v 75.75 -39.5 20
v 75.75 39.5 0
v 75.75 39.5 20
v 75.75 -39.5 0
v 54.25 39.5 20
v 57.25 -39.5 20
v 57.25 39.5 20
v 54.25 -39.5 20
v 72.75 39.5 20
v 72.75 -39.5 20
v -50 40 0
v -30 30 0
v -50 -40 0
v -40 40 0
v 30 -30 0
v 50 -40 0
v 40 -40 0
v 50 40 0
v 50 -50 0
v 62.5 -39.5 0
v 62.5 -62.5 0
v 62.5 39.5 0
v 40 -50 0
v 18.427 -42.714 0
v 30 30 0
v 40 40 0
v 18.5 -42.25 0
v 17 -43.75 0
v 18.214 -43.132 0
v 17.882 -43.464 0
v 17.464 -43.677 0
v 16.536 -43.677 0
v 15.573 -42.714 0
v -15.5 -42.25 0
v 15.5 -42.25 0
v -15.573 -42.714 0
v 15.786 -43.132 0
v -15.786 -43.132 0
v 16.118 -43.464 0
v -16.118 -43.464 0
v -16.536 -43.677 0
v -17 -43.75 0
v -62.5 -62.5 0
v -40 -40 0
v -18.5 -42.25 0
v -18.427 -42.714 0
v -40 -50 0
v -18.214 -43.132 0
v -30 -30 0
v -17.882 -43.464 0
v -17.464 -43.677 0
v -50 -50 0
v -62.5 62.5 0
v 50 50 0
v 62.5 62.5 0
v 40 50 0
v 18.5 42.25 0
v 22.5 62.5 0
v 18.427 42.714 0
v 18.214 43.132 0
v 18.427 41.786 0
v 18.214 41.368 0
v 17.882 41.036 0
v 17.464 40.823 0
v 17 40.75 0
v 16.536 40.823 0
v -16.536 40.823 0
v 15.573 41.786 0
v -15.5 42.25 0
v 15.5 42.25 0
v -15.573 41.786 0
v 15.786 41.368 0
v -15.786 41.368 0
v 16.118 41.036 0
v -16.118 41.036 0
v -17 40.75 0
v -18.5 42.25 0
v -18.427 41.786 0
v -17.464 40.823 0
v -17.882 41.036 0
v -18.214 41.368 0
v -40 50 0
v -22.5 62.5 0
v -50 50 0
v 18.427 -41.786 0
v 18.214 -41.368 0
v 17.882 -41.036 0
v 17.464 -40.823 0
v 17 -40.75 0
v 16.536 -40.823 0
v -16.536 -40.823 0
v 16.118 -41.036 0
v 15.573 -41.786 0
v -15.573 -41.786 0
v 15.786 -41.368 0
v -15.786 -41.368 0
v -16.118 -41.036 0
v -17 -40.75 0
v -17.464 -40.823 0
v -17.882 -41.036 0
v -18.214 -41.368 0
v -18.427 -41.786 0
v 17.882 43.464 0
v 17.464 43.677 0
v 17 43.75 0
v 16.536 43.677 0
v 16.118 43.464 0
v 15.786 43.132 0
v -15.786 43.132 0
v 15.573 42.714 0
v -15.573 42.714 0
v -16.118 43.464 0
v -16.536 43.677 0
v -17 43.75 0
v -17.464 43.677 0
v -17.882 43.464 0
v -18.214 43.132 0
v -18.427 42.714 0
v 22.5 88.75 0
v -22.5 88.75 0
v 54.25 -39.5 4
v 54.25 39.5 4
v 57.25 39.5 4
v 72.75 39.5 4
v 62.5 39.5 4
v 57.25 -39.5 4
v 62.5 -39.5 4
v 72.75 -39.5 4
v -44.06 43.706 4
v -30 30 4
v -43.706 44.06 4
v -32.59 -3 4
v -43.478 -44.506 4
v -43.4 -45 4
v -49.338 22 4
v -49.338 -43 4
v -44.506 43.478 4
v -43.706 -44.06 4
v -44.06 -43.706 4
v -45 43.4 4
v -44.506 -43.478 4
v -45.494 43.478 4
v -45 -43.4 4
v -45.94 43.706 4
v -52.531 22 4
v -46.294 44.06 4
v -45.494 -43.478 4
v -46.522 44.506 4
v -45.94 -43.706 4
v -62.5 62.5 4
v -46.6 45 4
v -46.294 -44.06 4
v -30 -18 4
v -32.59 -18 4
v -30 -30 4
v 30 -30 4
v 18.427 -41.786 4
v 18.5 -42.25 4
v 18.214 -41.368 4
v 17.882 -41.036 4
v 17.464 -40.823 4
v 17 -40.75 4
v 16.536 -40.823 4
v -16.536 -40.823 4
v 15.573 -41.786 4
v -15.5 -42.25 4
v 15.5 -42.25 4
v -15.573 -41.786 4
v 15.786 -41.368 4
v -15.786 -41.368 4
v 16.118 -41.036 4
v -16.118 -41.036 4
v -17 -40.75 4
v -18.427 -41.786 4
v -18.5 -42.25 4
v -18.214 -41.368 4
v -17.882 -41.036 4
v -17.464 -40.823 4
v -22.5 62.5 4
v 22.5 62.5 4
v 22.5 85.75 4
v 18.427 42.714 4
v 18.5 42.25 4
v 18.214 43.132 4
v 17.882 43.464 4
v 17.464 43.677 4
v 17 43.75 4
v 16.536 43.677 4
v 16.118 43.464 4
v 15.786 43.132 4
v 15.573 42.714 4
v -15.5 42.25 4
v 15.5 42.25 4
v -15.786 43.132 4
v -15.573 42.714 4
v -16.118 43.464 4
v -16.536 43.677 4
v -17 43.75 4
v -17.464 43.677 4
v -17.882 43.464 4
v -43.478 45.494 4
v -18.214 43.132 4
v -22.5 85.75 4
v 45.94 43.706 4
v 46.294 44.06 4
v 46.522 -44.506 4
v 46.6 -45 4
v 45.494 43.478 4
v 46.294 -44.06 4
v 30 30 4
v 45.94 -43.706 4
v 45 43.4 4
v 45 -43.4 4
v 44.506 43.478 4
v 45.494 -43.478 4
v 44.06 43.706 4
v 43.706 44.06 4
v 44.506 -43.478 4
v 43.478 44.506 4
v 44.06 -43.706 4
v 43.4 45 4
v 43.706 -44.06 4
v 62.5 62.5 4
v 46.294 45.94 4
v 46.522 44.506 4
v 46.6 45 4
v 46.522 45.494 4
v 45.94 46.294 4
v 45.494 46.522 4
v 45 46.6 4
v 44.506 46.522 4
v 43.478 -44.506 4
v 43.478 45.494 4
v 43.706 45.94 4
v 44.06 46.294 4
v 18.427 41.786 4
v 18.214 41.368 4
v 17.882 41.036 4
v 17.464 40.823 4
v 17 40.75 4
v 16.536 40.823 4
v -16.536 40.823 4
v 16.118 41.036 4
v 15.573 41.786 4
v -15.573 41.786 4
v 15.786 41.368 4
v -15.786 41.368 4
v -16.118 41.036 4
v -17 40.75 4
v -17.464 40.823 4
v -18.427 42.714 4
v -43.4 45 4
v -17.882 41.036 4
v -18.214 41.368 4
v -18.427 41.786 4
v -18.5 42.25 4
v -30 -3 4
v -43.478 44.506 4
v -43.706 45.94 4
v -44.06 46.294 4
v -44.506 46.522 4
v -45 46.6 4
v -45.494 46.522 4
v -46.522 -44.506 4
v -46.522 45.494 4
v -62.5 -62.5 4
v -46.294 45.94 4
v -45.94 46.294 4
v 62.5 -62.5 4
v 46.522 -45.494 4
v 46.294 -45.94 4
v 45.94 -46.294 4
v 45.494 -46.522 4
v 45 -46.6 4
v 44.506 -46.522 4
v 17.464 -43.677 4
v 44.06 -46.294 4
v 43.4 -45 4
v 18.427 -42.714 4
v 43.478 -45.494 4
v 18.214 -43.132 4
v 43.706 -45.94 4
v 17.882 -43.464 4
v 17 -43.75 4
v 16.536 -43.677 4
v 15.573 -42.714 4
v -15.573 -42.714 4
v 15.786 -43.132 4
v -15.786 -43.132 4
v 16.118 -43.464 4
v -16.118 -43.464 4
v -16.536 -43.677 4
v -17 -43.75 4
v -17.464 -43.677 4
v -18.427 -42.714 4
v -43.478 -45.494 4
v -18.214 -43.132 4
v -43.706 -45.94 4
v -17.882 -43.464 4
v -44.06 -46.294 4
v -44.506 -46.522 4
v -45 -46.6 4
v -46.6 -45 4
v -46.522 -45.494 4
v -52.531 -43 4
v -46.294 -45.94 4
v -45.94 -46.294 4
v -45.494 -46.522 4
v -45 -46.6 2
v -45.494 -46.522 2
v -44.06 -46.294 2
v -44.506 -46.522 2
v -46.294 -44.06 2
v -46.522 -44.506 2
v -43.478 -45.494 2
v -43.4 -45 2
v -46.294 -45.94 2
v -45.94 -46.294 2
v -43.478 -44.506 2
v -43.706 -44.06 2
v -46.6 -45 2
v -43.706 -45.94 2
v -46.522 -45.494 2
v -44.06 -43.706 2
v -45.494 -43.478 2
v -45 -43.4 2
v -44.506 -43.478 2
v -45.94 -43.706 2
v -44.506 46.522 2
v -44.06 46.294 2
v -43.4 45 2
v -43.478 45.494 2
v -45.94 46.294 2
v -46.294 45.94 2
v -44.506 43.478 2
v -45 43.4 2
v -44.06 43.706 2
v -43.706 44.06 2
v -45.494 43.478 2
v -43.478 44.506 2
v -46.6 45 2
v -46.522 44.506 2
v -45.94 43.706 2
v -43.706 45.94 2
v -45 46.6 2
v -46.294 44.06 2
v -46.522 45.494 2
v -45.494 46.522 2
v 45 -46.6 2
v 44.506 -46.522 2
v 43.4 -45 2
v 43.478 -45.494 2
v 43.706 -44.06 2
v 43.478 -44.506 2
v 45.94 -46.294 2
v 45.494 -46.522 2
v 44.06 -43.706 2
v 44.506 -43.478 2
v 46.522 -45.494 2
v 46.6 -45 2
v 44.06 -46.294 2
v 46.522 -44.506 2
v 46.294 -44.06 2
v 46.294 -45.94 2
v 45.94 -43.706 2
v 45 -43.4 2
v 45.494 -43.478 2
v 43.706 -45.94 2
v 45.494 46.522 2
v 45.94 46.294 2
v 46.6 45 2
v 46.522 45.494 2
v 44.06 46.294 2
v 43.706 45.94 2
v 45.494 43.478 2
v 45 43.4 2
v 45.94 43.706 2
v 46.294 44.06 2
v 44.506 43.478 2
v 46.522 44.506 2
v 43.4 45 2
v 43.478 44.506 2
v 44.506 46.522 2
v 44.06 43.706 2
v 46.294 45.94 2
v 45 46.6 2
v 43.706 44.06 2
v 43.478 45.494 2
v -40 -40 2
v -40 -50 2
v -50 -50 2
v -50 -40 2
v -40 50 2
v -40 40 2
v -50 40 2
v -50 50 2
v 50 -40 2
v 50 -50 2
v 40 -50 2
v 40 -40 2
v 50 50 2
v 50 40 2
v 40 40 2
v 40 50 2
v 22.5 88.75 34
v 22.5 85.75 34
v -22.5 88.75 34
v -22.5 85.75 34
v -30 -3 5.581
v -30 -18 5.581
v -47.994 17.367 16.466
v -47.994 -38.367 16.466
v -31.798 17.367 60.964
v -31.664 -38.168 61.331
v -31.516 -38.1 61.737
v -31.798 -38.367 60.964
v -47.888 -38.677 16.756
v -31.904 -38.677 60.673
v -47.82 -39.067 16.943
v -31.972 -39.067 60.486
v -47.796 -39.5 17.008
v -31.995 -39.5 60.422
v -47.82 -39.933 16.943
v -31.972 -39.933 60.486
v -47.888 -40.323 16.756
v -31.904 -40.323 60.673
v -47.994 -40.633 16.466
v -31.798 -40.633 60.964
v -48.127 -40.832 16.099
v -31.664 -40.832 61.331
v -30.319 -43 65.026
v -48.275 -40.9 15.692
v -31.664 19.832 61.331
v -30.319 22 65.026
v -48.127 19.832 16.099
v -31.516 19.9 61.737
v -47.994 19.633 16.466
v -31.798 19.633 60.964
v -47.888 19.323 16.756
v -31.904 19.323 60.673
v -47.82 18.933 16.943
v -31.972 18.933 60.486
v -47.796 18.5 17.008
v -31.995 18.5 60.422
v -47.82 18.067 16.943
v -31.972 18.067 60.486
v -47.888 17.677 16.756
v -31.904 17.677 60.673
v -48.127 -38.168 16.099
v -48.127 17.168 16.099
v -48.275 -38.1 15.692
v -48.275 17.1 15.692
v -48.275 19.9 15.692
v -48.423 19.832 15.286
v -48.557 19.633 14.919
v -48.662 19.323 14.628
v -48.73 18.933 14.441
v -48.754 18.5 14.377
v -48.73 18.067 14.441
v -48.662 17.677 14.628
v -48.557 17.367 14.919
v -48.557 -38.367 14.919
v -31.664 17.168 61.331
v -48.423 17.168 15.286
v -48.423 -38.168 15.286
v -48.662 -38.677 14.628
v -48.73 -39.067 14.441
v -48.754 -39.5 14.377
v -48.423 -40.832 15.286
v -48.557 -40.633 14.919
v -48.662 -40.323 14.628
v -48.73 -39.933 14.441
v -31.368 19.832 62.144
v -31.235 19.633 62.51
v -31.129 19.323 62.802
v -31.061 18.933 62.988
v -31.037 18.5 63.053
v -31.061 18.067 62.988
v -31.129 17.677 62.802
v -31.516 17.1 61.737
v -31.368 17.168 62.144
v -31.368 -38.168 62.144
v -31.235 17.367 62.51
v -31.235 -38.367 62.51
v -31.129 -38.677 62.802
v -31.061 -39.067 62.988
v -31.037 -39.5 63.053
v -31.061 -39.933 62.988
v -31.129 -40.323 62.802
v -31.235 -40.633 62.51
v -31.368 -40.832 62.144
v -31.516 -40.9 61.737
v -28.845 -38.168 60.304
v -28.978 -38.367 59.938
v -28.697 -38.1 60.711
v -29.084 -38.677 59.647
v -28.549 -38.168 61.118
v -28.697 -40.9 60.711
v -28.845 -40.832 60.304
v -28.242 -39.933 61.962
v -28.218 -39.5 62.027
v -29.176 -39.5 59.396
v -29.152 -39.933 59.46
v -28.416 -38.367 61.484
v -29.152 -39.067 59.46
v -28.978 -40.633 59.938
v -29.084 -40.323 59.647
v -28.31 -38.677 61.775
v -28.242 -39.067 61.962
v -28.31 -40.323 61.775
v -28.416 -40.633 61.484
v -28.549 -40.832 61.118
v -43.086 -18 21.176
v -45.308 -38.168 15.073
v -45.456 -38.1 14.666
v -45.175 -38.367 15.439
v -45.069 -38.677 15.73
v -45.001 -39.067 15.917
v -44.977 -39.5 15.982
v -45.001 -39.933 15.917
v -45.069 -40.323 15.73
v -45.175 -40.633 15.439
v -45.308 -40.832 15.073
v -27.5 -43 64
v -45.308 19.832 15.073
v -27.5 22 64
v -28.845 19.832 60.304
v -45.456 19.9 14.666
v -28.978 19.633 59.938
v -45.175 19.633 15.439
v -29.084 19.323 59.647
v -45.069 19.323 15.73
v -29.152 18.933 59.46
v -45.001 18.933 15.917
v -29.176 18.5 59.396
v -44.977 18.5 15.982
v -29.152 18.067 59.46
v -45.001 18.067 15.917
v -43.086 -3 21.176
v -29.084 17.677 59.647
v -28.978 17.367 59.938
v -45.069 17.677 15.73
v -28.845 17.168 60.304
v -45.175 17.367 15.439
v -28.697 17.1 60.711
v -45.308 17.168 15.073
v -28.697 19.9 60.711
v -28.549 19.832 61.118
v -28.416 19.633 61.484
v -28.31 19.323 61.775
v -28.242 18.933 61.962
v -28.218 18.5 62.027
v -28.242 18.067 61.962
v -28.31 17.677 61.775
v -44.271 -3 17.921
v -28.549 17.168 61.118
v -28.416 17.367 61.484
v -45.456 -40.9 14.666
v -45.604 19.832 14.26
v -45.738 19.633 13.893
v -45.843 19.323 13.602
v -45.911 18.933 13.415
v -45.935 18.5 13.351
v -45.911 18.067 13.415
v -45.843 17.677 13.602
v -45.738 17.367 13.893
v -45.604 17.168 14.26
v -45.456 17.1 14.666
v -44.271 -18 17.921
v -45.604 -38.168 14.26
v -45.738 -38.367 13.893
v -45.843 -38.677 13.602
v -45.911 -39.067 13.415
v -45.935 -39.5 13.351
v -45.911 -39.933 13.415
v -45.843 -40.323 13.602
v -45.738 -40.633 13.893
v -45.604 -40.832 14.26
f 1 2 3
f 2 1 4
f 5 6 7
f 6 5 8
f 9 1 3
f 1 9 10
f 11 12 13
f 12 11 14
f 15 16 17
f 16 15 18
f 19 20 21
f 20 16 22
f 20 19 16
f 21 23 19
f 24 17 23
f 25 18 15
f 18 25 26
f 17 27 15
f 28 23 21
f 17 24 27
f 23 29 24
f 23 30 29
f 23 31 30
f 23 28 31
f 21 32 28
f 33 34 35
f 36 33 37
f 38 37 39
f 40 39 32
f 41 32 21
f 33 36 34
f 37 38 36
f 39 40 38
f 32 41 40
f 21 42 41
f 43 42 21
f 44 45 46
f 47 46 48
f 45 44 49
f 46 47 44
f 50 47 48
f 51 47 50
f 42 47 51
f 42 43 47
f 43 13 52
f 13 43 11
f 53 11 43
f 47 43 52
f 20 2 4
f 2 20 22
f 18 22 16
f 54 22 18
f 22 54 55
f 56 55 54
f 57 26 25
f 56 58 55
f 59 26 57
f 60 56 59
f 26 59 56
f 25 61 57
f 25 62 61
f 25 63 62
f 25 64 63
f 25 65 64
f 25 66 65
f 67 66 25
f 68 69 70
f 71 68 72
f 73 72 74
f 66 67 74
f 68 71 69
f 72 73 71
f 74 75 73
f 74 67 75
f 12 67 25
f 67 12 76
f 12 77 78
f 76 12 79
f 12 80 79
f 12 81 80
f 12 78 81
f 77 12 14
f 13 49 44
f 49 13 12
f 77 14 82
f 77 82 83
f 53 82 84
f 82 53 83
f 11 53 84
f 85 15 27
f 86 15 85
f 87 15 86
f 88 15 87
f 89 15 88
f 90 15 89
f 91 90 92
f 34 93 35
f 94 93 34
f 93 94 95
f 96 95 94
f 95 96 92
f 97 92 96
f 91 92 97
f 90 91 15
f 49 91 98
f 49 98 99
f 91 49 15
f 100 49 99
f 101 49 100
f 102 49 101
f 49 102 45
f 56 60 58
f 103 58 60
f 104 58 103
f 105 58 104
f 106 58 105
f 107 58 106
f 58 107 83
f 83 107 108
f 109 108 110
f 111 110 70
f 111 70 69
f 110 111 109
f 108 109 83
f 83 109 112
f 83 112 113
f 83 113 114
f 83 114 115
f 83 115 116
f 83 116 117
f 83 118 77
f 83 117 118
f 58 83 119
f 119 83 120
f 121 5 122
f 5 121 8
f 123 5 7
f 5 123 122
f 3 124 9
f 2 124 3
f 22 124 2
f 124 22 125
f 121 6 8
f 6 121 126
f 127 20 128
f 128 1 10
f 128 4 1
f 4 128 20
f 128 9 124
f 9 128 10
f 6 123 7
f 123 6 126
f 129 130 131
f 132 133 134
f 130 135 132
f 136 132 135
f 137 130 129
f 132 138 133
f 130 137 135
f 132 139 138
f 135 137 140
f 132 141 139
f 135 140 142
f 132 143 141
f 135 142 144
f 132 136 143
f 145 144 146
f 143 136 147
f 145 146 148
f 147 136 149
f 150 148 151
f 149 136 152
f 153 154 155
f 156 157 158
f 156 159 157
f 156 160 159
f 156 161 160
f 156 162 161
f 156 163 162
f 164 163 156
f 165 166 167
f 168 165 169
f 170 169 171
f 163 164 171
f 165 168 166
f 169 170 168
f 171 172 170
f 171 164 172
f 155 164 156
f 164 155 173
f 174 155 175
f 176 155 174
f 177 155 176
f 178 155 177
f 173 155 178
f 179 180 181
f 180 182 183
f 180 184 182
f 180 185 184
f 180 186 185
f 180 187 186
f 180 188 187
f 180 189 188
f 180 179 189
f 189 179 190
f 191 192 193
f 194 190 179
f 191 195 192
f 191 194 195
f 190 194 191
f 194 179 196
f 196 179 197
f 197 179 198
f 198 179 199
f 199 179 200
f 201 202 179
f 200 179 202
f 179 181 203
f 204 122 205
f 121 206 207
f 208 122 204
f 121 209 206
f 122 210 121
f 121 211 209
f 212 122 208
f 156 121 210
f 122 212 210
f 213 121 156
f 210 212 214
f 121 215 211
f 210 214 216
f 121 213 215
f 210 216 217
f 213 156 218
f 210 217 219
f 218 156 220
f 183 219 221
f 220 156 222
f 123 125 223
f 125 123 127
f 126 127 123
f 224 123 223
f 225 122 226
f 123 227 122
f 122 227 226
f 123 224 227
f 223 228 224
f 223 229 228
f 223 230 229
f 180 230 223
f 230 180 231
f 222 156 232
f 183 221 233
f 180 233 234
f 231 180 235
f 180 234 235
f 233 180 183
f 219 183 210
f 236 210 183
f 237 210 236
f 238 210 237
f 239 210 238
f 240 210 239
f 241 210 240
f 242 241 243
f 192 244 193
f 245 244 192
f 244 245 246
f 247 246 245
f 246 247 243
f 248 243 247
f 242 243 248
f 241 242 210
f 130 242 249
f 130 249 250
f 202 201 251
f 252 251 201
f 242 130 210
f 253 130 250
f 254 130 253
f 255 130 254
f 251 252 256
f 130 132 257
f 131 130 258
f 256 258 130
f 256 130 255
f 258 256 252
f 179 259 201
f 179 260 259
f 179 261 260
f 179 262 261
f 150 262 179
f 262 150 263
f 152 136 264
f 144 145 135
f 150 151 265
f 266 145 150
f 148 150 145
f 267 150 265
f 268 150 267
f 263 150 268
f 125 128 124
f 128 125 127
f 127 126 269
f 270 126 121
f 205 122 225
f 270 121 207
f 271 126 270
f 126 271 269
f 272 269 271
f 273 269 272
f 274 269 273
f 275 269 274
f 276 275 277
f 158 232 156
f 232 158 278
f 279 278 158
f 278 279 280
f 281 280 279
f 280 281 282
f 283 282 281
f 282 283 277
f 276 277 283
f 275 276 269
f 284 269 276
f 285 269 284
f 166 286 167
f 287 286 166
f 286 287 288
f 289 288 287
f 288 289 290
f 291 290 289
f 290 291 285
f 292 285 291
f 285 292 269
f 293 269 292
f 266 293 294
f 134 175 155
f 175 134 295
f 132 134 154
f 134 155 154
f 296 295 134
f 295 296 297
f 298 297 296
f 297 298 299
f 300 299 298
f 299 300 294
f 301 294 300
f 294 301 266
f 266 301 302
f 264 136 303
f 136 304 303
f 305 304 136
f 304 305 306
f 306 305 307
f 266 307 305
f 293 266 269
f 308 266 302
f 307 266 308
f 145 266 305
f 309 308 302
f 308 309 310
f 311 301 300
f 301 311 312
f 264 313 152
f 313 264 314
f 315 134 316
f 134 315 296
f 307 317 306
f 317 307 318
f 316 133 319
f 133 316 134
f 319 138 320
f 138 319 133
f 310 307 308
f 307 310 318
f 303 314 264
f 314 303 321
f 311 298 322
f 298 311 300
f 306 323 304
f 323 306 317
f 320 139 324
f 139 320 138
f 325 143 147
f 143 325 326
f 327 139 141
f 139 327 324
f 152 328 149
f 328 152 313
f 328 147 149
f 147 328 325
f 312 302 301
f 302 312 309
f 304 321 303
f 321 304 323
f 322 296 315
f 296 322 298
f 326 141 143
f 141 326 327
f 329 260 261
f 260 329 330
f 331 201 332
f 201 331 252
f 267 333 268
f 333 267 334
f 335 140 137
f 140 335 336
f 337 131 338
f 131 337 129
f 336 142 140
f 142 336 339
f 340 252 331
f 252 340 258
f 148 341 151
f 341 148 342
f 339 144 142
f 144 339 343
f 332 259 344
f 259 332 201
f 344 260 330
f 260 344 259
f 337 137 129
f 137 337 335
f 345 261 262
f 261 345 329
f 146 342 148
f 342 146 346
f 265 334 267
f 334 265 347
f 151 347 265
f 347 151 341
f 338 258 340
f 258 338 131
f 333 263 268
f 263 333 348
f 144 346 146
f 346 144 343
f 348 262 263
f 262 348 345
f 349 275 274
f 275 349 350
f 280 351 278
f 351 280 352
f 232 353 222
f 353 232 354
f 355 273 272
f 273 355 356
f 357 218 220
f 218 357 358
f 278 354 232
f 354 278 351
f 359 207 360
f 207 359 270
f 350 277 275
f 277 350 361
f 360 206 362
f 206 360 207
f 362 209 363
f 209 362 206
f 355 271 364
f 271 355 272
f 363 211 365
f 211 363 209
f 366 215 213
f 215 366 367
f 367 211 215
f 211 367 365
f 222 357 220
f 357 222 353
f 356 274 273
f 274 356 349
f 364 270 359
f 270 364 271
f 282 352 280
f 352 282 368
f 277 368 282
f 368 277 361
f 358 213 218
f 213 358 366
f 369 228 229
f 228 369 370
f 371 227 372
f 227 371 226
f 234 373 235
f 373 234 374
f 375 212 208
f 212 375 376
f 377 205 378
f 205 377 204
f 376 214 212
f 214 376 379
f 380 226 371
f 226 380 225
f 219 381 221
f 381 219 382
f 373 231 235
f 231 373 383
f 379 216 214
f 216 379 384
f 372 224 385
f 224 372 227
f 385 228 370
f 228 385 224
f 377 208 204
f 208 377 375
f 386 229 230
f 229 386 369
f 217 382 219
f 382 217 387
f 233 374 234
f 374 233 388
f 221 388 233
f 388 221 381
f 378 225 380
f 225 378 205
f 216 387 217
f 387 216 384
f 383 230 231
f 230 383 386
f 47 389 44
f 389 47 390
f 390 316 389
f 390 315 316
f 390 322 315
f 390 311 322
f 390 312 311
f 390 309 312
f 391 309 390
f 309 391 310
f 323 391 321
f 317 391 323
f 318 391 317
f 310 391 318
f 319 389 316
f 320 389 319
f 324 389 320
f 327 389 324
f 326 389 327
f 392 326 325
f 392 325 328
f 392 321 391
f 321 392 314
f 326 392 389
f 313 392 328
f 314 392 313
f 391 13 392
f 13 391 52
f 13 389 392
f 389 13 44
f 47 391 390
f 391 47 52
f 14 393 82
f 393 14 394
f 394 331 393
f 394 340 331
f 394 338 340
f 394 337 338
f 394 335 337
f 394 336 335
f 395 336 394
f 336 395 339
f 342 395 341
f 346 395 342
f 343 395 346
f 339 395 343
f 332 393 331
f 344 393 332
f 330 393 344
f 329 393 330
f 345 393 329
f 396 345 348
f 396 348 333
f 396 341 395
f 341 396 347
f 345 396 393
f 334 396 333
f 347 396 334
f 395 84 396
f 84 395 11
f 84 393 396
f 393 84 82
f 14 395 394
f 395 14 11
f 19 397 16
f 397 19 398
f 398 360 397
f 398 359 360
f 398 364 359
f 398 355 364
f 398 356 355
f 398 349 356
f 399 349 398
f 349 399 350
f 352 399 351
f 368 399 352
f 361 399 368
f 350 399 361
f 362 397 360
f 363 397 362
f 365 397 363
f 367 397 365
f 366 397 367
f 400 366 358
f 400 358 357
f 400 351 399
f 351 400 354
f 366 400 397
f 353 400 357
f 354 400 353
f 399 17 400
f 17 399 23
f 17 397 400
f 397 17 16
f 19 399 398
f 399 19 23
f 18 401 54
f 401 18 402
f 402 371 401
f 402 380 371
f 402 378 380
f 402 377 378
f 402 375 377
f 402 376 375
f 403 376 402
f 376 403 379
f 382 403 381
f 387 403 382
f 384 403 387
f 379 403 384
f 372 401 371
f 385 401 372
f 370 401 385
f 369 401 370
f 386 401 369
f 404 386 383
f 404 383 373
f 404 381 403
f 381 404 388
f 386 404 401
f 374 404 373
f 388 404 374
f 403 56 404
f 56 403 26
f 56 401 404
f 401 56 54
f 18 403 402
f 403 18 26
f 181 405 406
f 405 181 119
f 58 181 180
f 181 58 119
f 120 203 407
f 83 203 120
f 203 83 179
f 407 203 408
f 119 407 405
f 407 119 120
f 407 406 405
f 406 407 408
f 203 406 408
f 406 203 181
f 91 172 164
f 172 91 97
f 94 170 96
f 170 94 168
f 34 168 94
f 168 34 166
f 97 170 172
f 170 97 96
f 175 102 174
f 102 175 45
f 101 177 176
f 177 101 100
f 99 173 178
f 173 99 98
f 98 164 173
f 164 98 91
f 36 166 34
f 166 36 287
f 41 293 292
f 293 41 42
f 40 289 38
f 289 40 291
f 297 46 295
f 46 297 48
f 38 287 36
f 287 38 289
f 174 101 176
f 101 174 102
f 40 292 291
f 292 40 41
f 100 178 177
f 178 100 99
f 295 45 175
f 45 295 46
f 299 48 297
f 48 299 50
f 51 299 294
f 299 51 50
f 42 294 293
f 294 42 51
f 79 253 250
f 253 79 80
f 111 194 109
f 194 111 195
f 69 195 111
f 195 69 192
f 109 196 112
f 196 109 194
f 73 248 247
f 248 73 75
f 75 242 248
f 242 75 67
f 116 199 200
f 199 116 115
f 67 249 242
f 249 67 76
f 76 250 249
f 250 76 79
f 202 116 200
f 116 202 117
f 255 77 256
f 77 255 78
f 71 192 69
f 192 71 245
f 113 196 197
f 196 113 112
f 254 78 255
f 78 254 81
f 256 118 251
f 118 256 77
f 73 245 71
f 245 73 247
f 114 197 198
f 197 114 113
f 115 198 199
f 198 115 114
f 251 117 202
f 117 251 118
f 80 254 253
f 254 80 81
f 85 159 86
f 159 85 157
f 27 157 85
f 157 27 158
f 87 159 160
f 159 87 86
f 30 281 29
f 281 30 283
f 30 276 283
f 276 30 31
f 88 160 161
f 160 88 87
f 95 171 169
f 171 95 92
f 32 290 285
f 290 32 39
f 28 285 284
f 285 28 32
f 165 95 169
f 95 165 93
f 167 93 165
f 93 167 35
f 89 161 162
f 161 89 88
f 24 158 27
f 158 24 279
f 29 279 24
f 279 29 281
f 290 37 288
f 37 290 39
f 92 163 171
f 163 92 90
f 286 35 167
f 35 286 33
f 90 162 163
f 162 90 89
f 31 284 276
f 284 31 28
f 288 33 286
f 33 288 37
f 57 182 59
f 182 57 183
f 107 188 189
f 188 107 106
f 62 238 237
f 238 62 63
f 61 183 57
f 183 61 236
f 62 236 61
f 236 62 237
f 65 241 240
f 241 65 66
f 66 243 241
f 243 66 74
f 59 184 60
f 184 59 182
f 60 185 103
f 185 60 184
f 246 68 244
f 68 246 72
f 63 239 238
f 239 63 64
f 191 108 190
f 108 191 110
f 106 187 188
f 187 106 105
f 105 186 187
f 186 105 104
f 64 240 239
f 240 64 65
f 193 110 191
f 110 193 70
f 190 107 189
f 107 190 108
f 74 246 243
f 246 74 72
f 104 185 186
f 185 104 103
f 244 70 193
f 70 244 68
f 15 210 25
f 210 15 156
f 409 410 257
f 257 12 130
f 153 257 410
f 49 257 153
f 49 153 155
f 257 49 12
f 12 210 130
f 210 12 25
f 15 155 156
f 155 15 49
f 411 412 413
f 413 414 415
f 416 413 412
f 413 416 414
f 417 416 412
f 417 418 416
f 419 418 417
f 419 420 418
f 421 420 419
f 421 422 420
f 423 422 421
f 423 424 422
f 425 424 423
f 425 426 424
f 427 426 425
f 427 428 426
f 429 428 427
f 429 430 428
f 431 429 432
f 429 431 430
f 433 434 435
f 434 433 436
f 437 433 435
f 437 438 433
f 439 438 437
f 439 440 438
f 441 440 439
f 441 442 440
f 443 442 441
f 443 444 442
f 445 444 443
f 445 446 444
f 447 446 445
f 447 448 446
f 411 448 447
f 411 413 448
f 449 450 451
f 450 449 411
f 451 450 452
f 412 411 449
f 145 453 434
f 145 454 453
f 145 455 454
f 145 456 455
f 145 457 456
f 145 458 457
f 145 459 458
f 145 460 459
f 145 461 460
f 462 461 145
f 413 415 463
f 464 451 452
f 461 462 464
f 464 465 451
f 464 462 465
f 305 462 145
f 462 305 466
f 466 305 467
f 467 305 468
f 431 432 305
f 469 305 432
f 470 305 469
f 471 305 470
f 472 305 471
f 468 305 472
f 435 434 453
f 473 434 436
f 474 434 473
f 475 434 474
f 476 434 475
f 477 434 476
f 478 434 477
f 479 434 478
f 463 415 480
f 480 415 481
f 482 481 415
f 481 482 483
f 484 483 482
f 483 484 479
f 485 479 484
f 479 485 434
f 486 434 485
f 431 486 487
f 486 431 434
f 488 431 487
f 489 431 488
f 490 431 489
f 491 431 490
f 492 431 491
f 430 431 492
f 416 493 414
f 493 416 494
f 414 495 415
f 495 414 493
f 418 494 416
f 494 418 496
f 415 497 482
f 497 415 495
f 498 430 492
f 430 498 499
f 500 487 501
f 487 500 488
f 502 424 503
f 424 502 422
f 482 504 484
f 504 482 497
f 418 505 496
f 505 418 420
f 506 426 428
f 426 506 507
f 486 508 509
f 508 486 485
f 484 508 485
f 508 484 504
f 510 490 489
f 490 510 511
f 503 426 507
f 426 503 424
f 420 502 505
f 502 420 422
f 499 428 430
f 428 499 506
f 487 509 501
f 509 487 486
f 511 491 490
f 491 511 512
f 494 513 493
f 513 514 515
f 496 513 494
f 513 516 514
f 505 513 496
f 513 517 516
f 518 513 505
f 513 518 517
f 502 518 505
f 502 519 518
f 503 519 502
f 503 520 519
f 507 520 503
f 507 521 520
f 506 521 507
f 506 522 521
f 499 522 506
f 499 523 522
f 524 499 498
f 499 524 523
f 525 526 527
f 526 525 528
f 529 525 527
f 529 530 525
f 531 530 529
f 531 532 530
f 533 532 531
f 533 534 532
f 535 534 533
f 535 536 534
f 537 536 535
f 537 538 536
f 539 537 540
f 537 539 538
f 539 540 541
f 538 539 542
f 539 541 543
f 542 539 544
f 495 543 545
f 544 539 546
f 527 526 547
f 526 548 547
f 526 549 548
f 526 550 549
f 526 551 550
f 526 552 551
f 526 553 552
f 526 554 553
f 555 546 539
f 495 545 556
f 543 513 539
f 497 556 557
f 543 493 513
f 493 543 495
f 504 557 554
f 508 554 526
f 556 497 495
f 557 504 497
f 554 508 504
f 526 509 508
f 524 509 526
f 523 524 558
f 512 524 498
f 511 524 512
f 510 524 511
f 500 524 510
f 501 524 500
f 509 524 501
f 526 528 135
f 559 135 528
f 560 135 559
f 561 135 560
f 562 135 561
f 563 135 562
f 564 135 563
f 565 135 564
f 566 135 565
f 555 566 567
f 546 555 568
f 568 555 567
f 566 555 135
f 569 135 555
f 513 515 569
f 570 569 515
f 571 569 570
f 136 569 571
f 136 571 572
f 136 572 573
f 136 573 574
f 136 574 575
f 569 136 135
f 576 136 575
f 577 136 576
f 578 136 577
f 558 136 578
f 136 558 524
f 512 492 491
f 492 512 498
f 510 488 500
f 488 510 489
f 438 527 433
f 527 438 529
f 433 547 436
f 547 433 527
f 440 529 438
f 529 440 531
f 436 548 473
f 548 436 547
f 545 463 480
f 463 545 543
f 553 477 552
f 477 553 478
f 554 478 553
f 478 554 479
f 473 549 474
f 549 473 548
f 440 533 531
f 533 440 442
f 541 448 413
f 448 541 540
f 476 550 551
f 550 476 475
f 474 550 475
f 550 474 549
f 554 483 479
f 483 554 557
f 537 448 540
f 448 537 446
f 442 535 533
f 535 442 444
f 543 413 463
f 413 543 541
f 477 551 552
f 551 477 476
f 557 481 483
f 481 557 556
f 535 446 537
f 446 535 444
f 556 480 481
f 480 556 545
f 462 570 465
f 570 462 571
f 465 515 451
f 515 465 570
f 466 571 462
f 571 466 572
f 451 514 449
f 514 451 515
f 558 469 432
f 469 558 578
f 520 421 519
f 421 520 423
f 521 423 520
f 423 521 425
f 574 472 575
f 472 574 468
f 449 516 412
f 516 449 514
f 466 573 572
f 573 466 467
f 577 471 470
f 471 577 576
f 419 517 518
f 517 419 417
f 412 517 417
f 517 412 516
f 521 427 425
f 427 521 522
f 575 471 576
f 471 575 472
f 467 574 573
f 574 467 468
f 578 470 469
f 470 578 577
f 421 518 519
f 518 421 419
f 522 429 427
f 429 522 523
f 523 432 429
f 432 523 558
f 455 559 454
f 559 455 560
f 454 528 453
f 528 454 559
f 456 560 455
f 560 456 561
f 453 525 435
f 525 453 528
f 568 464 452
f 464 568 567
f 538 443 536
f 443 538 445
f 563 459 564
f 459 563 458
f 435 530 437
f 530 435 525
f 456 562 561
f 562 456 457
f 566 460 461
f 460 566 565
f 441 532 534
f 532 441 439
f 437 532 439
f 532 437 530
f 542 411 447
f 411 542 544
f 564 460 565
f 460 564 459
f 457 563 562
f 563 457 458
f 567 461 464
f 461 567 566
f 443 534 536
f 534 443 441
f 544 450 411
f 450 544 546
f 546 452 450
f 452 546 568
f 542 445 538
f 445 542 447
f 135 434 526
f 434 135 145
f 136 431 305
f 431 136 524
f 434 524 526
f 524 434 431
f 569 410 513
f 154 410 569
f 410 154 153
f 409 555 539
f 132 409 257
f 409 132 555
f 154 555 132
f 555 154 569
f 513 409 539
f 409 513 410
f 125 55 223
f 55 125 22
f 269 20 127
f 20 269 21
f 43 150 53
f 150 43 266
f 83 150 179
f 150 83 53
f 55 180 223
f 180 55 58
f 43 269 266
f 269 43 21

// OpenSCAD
// file: ../library/PiHoles.scad
//Shut your Pi Hole!
//An OpenSCAD library to assist with designing Raspberry Pi accessories

//This work is licensed under the Creative Commons Attribution-ShareAlike 4.0 International License. To view a copy of this license, visit http://creativecommons.org/licenses/by-sa/4.0/.
//© 2016 Dale Price

//Pi dimensions sourced from https://www.raspberrypi.org/documentation/hardware/raspberrypi/mechanical/
//Currently supports "1B", "1A+", "1B+", "2B", "3B", "Zero"

//get vector of [x,y] vectors of locations of mounting holes based on Pi version
function piHoleLocations (board="3B") =
	(board=="1A+" || board=="1B+" || board=="2B" || board=="3A+" || board=="3B") ?
		[[3.5, 3.5], [61.5, 3.5], [3.5, 52.5], [61.5, 52.5]] : //pi 1B+, 2B, 3B
	(board=="Zero") ?
		[[3.5, 3.5], [61.5, 3.5], [3.5, 26.5], [61.5, 26.5]] : //pi zero
	(board=="1B") ?
		[[80, 43.5], [25, 17.5]] :
	[]; //invalid board

//get vector of [x,y,z] dimensions of board
//	dimensions are for PCB only, not ports or anything else
function piBoardDim (board="3B") =
	(board=="1B" || board=="1B+" || board=="2B" || board=="3B") ?
		[85, 56, 1.25] :
	(board=="Zero") ?
		[65, 30, 1.25] :
	(board == "1A+" || board=="3A+") ?
		[65, 56, 1.25] :
	[0,0,0];

//Mounting holes for a Raspberry Pi of the specified version
//	Parameters
//		board: the version of the raspberry pi to generate holes for
//		depth: the depth of the holes in mm
module piHoles (board, depth = 5, preview=true) {
	hd = 2.8; //radius of pi mounting holes plus a tiny bit extra to account for shrinkage when 3D printing
	hr = hd/2;

	//preview of the board itself
	if(preview==true)
		% piBoard(board);

	//mounting holes
	for(holePos = piHoleLocations(board)) {
		translate([holePos[0], holePos[1], -depth]) cylinder(d=hd, h=depth);
	}
}

//Preview of board dimensions for Raspberry Pi of the specified version
module piBoard (board) {
	difference() {
		cube(piBoardDim(board), center=false);
		translate([0,0,piBoardDim(board)[2] + 0.01]) piHoles(board, piBoardDim(board)[2] + 0.02, false);
	}

	//warn about possible inaccuracy of boards that don't currently have official documentation
	if(board == "1B") {
		echo("CAUTION: The mounting hole positions for the board you have selected may not be accurate because the Raspberry Pi Foundation does not currently provide official mechanical drawings for it.");
	}
}

//Snap-fit posts for mounting the Raspberry Pi
//	Parameters
//		board: version of the raspberry pi to mount
//		height: height of the top surface of the raspberry pi board off the base of the posts
//		preview: whether or not to show a preview of the board in place
module piPosts(board, height=5, preview=true) {
	piSize = piBoardDim(board);
	piHolePos = piHoleLocations(board);

	module pcbPost(height) {
		cylinder(d=2, h=height);
		cylinder(d1=5, d2=2, h=height - piSize[2] - 0.25);

		translate([0, 0.4, height]) scale([1.1, 1.1, 1]) cylinder(d=2, h=0.5);
	}

	for(holePos = piHolePos) {
		translate([holePos[0], holePos[1], 0]) pcbPost(height);
	}

	if(preview==true)
		% translate([0,0,height-piSize[2]]) piBoard(board);
}

//color("DarkGreen", 1, $fn=20) {
//	piBoard("1B");
//	translate([100,0,0]) piBoard("1A+");
//	translate([0,80,0]) piBoard("2B");
//	translate([100,80,0]) piBoard("Zero");
//}
// main file
include <../library/PiHoles.scad>

$fn=20;

module support_mounts()
{
    width = 20;
    inner_width = 10;
    
    height = 4;
    
    translation = 45;
    for( x_translation = [-translation, translation] )
    {
        for( y_translation = [-translation, translation] )
        {
            translate([x_translation, y_translation, -height])
            difference()
            {
                translate([-width/2, -width/2, 0])
                cube([width, width, height]);
                
                translate([-inner_width/2, -inner_width/2, 0])
                cube([inner_width, inner_width, height]);
            }
        }
    }
}

module support_mount_voids(height=2)
{
    inner_width = 10;
    translation = 45;
    for( x_translation = [-translation, translation] )
    {
        for( y_translation = [-translation, translation] )
        {
            translate([x_translation, y_translation, 0])
            translate([-inner_width/2, -inner_width/2, 0])
            cube([inner_width, inner_width, height]);
        }
    }
}

module support_mount_screw_voids()
{
    translation = 45;
    for( x_translation = [-translation, translation] )
    {
        for( y_translation = [-translation, translation] )
        {
            translate([x_translation, y_translation, 0])
            cylinder(d=3.2, h=4);
        }
    }
}

module component_mounting_plate()
{
    base_side_length = 125;
    thickness = 4;
    
    difference()
    {
        union()
        {
            translate([-base_side_length/2, -base_side_length/2, 0])
            cube([base_side_length, base_side_length, thickness]);
            
            translate([3, -15.5, 55])
            raspberry_pi_mount();
//            support_mounts();
            
            translate([65, 0, 0])
            herelink_mount();
            
            translate([0, 42.25+45, 4])
            bec_mount();
        }
        union()
        {
            center_hole();
            support_mount_screw_voids();
            support_mount_voids();
            pixhawk_holes();
        }
    }
}

module pixhawk_holes()
{
    z_translation = 0;
    for( x_translation = [-17, 17] )
    {
        for( y_translation = [-42.25, 42.25] )
        {
            translate([x_translation, y_translation, z_translation])
            cylinder(d=3, h=4);
        }
    }
}

module center_hole()
{
    side_length = 60;
    
    translate([-side_length/2, -side_length/2, 0])
    cube([side_length, side_length, 10]);
}

module raspberry_pi_mount()
{
    x = 65;
    y = 65;
    z = 3;
    thickness = z;
    support_height = 24;
    
    translate([-x/2+2, -y/2+5, 9])
    rotate([-70, 0, 90])
    union()
    {
        difference()
        {
        cube([x, y, thickness]);
        
//            translate([56, 0, 0])
//            rotate([0, 0, 90])
        translate([0, 0, thickness])
        piHoles("3B", depth = thickness);
        }
        
        translate([x/2, y/2+20, -support_height/2 + 3])
        rotate([-30, 180, 0])
        cube([15, thickness, support_height], center=true);
    }
}

module herelink_mount()
{
    wall_thickness = 3;
    bottom_thickness = 4;
    
    x = 15.5;
    y = 79;
    z = 20;
    
    translate([0, 0, z/2])
    difference()
    {
        cube([x + wall_thickness*2, y, z], center=true);
        cube([x, y, z], center=true);
    }
    
    translate([0, 0, bottom_thickness/2])
    cube([x, y, bottom_thickness], center=true);
}

module bec_mount()
{
    x = 45;
    y = 3;
    z = 30;
    
    translate([0, -25/2, -4/2])
    cube([x, 25+3, 4], center=true);
    
    translate([0, 0, z/2])
    cube([x, y, z], center=true);
}

component_mounting_plate();
